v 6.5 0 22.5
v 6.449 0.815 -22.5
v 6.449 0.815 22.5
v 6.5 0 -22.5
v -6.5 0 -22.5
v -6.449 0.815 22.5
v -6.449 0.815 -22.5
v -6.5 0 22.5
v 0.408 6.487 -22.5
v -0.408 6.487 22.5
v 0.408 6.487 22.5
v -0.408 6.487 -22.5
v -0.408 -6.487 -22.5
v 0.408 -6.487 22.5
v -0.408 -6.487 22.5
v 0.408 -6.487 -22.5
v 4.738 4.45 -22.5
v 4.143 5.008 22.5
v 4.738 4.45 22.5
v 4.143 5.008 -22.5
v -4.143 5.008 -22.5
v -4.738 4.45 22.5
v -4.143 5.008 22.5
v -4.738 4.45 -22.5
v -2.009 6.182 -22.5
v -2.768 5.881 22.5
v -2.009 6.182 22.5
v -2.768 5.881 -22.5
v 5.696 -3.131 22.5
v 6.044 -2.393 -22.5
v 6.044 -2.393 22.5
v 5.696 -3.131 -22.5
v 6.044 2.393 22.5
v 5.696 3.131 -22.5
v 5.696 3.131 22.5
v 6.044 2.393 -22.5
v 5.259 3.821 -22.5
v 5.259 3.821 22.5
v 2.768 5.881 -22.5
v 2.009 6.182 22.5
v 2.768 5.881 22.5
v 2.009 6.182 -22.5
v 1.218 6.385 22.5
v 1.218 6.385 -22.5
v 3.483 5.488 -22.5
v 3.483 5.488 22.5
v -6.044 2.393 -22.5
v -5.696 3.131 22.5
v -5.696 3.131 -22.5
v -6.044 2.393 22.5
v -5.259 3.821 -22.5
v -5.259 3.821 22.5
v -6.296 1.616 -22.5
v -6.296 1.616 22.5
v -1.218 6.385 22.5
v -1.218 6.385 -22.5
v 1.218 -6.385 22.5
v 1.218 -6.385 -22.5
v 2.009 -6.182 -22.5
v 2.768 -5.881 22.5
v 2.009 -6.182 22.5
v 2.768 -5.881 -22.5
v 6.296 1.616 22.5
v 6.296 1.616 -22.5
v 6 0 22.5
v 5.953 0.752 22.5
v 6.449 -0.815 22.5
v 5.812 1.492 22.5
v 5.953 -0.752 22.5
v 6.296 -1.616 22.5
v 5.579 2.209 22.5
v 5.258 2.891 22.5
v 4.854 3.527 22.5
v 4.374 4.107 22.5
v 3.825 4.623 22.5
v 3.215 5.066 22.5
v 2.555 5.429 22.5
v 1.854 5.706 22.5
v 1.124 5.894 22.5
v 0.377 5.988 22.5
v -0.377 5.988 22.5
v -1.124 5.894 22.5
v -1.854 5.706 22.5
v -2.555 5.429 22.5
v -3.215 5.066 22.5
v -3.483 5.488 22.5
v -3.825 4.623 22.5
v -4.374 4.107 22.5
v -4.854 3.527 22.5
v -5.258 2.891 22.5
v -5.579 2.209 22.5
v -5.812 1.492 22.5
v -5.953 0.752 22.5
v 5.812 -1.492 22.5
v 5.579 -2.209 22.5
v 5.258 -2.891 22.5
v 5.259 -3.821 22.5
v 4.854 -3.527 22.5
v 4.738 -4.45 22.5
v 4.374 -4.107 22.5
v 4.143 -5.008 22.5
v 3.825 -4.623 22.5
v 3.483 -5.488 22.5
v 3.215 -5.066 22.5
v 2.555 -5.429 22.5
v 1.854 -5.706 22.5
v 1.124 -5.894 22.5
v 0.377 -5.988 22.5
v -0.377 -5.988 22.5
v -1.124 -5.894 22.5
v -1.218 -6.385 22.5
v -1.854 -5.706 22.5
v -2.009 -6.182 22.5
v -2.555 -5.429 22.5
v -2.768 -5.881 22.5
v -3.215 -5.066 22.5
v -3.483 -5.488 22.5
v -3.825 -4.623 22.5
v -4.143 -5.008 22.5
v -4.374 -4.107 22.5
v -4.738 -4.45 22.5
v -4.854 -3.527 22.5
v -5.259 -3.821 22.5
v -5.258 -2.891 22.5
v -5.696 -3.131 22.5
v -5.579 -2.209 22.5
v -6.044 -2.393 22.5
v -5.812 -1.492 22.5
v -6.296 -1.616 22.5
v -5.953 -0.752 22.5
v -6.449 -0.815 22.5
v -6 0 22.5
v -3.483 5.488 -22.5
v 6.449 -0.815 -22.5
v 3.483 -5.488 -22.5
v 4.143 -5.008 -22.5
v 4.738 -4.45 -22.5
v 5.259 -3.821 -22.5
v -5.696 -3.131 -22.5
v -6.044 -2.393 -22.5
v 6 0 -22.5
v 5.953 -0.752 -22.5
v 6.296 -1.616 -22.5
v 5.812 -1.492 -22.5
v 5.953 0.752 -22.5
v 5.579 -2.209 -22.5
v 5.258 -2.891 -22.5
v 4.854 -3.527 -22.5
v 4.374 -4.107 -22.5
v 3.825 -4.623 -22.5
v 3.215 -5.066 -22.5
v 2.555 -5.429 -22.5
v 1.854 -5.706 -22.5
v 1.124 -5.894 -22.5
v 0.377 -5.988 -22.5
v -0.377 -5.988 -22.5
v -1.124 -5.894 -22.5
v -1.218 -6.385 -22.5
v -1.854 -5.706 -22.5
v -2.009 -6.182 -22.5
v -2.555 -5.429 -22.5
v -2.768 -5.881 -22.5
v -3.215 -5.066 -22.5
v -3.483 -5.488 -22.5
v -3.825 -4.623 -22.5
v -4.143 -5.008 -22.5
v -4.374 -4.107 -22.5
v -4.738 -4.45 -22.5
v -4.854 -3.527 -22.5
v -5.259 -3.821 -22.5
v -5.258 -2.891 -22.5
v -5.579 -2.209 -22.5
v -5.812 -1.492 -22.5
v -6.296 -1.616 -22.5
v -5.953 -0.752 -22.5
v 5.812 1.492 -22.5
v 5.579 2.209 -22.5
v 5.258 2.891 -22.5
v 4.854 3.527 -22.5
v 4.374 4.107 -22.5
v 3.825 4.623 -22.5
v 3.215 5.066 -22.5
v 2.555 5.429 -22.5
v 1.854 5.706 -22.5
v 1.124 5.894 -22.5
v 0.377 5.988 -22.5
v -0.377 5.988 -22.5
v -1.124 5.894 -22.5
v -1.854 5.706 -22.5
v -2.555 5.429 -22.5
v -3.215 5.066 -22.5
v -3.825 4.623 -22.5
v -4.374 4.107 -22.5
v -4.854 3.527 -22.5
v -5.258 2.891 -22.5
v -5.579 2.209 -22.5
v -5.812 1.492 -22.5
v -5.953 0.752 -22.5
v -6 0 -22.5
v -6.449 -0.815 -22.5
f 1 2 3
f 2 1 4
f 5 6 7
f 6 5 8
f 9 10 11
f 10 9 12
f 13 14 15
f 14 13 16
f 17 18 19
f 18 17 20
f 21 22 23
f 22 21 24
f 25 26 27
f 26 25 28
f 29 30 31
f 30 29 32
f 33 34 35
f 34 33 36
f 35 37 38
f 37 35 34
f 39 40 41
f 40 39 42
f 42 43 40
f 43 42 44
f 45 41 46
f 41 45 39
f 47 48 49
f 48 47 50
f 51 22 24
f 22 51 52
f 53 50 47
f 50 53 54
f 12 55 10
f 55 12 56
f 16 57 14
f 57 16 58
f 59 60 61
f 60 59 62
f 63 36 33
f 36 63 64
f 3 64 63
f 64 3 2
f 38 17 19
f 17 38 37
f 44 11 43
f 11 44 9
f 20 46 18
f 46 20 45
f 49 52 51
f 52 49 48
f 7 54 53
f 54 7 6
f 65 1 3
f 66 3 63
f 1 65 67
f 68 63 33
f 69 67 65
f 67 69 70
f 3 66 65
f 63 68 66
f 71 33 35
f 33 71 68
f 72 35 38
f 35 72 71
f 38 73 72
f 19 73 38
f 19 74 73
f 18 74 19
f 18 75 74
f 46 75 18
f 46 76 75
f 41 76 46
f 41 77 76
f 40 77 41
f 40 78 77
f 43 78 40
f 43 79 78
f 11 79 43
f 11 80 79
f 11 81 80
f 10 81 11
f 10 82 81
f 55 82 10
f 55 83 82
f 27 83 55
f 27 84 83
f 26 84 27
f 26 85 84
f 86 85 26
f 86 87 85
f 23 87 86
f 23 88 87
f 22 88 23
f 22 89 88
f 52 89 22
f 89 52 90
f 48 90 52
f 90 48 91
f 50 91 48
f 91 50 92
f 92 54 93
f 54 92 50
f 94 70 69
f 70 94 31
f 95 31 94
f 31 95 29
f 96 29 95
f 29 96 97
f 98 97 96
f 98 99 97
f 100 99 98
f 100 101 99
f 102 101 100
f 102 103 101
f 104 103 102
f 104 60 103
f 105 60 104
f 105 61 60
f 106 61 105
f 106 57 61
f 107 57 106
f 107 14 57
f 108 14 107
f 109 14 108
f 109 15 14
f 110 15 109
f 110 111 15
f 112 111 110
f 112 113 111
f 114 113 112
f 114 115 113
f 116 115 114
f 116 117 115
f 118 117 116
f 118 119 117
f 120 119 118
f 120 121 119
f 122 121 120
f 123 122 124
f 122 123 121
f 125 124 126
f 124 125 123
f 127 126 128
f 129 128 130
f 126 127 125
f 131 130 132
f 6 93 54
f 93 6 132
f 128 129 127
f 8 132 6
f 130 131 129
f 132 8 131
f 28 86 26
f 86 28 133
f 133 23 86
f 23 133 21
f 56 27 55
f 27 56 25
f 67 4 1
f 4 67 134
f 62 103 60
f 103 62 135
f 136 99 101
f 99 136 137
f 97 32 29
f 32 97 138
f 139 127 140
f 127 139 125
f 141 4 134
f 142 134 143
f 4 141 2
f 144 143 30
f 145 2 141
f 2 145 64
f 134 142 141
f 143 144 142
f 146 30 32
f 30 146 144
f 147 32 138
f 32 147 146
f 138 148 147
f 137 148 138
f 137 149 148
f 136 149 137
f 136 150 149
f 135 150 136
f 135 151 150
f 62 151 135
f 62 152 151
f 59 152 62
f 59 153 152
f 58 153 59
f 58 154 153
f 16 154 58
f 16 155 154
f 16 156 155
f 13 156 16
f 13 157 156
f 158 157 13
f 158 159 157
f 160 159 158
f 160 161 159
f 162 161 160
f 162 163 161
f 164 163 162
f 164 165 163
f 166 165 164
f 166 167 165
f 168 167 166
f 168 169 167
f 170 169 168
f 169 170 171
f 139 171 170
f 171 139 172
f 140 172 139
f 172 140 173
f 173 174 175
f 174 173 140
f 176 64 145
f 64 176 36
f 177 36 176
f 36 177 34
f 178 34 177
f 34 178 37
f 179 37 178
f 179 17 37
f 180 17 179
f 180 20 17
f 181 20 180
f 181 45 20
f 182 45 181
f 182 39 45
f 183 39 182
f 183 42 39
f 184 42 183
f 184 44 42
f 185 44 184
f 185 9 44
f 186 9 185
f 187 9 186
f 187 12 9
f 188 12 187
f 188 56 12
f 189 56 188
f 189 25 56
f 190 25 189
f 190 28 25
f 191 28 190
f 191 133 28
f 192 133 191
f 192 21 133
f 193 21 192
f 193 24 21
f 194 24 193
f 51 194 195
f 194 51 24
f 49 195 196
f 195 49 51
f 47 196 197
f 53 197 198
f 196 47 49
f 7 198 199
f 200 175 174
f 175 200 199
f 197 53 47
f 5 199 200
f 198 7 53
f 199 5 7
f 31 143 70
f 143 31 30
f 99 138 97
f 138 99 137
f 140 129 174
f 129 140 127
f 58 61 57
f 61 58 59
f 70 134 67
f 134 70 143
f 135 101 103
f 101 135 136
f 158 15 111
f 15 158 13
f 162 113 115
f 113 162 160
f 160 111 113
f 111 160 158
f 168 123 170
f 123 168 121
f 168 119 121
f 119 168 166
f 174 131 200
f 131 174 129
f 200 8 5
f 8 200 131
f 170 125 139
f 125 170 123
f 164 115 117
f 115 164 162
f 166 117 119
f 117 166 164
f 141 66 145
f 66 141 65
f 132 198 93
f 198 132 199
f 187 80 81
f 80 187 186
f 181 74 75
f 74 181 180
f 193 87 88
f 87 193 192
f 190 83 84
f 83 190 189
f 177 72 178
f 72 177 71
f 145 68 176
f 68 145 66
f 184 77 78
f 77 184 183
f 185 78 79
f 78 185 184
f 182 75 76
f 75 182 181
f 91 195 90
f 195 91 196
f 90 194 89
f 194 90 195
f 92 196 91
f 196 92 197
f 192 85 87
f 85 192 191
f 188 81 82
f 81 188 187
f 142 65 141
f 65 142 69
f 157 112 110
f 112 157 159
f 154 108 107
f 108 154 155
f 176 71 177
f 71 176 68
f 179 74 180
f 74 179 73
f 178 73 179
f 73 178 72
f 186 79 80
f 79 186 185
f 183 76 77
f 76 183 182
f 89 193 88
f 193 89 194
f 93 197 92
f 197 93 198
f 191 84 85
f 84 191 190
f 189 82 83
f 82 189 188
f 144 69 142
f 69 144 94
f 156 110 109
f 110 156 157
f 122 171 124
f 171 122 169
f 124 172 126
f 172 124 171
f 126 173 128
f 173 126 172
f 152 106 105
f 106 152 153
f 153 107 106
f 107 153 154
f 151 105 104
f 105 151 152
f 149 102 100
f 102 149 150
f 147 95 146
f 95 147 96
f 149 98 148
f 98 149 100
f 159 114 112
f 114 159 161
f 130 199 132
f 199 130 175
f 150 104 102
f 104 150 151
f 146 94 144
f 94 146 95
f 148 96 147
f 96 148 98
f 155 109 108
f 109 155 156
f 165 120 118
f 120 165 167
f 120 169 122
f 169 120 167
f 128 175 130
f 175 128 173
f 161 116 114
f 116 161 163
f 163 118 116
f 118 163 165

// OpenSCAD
$fn = 50;


difference() {
	union() {
		translate(v = [0, 0, -22.5000000000]) {
			cylinder(h = 45, r = 6.5000000000);
		}
	}
	union() {
		translate(v = [0, 0, -100.0000000000]) {
			cylinder(h = 200, r = 6);
		}
	}
}
